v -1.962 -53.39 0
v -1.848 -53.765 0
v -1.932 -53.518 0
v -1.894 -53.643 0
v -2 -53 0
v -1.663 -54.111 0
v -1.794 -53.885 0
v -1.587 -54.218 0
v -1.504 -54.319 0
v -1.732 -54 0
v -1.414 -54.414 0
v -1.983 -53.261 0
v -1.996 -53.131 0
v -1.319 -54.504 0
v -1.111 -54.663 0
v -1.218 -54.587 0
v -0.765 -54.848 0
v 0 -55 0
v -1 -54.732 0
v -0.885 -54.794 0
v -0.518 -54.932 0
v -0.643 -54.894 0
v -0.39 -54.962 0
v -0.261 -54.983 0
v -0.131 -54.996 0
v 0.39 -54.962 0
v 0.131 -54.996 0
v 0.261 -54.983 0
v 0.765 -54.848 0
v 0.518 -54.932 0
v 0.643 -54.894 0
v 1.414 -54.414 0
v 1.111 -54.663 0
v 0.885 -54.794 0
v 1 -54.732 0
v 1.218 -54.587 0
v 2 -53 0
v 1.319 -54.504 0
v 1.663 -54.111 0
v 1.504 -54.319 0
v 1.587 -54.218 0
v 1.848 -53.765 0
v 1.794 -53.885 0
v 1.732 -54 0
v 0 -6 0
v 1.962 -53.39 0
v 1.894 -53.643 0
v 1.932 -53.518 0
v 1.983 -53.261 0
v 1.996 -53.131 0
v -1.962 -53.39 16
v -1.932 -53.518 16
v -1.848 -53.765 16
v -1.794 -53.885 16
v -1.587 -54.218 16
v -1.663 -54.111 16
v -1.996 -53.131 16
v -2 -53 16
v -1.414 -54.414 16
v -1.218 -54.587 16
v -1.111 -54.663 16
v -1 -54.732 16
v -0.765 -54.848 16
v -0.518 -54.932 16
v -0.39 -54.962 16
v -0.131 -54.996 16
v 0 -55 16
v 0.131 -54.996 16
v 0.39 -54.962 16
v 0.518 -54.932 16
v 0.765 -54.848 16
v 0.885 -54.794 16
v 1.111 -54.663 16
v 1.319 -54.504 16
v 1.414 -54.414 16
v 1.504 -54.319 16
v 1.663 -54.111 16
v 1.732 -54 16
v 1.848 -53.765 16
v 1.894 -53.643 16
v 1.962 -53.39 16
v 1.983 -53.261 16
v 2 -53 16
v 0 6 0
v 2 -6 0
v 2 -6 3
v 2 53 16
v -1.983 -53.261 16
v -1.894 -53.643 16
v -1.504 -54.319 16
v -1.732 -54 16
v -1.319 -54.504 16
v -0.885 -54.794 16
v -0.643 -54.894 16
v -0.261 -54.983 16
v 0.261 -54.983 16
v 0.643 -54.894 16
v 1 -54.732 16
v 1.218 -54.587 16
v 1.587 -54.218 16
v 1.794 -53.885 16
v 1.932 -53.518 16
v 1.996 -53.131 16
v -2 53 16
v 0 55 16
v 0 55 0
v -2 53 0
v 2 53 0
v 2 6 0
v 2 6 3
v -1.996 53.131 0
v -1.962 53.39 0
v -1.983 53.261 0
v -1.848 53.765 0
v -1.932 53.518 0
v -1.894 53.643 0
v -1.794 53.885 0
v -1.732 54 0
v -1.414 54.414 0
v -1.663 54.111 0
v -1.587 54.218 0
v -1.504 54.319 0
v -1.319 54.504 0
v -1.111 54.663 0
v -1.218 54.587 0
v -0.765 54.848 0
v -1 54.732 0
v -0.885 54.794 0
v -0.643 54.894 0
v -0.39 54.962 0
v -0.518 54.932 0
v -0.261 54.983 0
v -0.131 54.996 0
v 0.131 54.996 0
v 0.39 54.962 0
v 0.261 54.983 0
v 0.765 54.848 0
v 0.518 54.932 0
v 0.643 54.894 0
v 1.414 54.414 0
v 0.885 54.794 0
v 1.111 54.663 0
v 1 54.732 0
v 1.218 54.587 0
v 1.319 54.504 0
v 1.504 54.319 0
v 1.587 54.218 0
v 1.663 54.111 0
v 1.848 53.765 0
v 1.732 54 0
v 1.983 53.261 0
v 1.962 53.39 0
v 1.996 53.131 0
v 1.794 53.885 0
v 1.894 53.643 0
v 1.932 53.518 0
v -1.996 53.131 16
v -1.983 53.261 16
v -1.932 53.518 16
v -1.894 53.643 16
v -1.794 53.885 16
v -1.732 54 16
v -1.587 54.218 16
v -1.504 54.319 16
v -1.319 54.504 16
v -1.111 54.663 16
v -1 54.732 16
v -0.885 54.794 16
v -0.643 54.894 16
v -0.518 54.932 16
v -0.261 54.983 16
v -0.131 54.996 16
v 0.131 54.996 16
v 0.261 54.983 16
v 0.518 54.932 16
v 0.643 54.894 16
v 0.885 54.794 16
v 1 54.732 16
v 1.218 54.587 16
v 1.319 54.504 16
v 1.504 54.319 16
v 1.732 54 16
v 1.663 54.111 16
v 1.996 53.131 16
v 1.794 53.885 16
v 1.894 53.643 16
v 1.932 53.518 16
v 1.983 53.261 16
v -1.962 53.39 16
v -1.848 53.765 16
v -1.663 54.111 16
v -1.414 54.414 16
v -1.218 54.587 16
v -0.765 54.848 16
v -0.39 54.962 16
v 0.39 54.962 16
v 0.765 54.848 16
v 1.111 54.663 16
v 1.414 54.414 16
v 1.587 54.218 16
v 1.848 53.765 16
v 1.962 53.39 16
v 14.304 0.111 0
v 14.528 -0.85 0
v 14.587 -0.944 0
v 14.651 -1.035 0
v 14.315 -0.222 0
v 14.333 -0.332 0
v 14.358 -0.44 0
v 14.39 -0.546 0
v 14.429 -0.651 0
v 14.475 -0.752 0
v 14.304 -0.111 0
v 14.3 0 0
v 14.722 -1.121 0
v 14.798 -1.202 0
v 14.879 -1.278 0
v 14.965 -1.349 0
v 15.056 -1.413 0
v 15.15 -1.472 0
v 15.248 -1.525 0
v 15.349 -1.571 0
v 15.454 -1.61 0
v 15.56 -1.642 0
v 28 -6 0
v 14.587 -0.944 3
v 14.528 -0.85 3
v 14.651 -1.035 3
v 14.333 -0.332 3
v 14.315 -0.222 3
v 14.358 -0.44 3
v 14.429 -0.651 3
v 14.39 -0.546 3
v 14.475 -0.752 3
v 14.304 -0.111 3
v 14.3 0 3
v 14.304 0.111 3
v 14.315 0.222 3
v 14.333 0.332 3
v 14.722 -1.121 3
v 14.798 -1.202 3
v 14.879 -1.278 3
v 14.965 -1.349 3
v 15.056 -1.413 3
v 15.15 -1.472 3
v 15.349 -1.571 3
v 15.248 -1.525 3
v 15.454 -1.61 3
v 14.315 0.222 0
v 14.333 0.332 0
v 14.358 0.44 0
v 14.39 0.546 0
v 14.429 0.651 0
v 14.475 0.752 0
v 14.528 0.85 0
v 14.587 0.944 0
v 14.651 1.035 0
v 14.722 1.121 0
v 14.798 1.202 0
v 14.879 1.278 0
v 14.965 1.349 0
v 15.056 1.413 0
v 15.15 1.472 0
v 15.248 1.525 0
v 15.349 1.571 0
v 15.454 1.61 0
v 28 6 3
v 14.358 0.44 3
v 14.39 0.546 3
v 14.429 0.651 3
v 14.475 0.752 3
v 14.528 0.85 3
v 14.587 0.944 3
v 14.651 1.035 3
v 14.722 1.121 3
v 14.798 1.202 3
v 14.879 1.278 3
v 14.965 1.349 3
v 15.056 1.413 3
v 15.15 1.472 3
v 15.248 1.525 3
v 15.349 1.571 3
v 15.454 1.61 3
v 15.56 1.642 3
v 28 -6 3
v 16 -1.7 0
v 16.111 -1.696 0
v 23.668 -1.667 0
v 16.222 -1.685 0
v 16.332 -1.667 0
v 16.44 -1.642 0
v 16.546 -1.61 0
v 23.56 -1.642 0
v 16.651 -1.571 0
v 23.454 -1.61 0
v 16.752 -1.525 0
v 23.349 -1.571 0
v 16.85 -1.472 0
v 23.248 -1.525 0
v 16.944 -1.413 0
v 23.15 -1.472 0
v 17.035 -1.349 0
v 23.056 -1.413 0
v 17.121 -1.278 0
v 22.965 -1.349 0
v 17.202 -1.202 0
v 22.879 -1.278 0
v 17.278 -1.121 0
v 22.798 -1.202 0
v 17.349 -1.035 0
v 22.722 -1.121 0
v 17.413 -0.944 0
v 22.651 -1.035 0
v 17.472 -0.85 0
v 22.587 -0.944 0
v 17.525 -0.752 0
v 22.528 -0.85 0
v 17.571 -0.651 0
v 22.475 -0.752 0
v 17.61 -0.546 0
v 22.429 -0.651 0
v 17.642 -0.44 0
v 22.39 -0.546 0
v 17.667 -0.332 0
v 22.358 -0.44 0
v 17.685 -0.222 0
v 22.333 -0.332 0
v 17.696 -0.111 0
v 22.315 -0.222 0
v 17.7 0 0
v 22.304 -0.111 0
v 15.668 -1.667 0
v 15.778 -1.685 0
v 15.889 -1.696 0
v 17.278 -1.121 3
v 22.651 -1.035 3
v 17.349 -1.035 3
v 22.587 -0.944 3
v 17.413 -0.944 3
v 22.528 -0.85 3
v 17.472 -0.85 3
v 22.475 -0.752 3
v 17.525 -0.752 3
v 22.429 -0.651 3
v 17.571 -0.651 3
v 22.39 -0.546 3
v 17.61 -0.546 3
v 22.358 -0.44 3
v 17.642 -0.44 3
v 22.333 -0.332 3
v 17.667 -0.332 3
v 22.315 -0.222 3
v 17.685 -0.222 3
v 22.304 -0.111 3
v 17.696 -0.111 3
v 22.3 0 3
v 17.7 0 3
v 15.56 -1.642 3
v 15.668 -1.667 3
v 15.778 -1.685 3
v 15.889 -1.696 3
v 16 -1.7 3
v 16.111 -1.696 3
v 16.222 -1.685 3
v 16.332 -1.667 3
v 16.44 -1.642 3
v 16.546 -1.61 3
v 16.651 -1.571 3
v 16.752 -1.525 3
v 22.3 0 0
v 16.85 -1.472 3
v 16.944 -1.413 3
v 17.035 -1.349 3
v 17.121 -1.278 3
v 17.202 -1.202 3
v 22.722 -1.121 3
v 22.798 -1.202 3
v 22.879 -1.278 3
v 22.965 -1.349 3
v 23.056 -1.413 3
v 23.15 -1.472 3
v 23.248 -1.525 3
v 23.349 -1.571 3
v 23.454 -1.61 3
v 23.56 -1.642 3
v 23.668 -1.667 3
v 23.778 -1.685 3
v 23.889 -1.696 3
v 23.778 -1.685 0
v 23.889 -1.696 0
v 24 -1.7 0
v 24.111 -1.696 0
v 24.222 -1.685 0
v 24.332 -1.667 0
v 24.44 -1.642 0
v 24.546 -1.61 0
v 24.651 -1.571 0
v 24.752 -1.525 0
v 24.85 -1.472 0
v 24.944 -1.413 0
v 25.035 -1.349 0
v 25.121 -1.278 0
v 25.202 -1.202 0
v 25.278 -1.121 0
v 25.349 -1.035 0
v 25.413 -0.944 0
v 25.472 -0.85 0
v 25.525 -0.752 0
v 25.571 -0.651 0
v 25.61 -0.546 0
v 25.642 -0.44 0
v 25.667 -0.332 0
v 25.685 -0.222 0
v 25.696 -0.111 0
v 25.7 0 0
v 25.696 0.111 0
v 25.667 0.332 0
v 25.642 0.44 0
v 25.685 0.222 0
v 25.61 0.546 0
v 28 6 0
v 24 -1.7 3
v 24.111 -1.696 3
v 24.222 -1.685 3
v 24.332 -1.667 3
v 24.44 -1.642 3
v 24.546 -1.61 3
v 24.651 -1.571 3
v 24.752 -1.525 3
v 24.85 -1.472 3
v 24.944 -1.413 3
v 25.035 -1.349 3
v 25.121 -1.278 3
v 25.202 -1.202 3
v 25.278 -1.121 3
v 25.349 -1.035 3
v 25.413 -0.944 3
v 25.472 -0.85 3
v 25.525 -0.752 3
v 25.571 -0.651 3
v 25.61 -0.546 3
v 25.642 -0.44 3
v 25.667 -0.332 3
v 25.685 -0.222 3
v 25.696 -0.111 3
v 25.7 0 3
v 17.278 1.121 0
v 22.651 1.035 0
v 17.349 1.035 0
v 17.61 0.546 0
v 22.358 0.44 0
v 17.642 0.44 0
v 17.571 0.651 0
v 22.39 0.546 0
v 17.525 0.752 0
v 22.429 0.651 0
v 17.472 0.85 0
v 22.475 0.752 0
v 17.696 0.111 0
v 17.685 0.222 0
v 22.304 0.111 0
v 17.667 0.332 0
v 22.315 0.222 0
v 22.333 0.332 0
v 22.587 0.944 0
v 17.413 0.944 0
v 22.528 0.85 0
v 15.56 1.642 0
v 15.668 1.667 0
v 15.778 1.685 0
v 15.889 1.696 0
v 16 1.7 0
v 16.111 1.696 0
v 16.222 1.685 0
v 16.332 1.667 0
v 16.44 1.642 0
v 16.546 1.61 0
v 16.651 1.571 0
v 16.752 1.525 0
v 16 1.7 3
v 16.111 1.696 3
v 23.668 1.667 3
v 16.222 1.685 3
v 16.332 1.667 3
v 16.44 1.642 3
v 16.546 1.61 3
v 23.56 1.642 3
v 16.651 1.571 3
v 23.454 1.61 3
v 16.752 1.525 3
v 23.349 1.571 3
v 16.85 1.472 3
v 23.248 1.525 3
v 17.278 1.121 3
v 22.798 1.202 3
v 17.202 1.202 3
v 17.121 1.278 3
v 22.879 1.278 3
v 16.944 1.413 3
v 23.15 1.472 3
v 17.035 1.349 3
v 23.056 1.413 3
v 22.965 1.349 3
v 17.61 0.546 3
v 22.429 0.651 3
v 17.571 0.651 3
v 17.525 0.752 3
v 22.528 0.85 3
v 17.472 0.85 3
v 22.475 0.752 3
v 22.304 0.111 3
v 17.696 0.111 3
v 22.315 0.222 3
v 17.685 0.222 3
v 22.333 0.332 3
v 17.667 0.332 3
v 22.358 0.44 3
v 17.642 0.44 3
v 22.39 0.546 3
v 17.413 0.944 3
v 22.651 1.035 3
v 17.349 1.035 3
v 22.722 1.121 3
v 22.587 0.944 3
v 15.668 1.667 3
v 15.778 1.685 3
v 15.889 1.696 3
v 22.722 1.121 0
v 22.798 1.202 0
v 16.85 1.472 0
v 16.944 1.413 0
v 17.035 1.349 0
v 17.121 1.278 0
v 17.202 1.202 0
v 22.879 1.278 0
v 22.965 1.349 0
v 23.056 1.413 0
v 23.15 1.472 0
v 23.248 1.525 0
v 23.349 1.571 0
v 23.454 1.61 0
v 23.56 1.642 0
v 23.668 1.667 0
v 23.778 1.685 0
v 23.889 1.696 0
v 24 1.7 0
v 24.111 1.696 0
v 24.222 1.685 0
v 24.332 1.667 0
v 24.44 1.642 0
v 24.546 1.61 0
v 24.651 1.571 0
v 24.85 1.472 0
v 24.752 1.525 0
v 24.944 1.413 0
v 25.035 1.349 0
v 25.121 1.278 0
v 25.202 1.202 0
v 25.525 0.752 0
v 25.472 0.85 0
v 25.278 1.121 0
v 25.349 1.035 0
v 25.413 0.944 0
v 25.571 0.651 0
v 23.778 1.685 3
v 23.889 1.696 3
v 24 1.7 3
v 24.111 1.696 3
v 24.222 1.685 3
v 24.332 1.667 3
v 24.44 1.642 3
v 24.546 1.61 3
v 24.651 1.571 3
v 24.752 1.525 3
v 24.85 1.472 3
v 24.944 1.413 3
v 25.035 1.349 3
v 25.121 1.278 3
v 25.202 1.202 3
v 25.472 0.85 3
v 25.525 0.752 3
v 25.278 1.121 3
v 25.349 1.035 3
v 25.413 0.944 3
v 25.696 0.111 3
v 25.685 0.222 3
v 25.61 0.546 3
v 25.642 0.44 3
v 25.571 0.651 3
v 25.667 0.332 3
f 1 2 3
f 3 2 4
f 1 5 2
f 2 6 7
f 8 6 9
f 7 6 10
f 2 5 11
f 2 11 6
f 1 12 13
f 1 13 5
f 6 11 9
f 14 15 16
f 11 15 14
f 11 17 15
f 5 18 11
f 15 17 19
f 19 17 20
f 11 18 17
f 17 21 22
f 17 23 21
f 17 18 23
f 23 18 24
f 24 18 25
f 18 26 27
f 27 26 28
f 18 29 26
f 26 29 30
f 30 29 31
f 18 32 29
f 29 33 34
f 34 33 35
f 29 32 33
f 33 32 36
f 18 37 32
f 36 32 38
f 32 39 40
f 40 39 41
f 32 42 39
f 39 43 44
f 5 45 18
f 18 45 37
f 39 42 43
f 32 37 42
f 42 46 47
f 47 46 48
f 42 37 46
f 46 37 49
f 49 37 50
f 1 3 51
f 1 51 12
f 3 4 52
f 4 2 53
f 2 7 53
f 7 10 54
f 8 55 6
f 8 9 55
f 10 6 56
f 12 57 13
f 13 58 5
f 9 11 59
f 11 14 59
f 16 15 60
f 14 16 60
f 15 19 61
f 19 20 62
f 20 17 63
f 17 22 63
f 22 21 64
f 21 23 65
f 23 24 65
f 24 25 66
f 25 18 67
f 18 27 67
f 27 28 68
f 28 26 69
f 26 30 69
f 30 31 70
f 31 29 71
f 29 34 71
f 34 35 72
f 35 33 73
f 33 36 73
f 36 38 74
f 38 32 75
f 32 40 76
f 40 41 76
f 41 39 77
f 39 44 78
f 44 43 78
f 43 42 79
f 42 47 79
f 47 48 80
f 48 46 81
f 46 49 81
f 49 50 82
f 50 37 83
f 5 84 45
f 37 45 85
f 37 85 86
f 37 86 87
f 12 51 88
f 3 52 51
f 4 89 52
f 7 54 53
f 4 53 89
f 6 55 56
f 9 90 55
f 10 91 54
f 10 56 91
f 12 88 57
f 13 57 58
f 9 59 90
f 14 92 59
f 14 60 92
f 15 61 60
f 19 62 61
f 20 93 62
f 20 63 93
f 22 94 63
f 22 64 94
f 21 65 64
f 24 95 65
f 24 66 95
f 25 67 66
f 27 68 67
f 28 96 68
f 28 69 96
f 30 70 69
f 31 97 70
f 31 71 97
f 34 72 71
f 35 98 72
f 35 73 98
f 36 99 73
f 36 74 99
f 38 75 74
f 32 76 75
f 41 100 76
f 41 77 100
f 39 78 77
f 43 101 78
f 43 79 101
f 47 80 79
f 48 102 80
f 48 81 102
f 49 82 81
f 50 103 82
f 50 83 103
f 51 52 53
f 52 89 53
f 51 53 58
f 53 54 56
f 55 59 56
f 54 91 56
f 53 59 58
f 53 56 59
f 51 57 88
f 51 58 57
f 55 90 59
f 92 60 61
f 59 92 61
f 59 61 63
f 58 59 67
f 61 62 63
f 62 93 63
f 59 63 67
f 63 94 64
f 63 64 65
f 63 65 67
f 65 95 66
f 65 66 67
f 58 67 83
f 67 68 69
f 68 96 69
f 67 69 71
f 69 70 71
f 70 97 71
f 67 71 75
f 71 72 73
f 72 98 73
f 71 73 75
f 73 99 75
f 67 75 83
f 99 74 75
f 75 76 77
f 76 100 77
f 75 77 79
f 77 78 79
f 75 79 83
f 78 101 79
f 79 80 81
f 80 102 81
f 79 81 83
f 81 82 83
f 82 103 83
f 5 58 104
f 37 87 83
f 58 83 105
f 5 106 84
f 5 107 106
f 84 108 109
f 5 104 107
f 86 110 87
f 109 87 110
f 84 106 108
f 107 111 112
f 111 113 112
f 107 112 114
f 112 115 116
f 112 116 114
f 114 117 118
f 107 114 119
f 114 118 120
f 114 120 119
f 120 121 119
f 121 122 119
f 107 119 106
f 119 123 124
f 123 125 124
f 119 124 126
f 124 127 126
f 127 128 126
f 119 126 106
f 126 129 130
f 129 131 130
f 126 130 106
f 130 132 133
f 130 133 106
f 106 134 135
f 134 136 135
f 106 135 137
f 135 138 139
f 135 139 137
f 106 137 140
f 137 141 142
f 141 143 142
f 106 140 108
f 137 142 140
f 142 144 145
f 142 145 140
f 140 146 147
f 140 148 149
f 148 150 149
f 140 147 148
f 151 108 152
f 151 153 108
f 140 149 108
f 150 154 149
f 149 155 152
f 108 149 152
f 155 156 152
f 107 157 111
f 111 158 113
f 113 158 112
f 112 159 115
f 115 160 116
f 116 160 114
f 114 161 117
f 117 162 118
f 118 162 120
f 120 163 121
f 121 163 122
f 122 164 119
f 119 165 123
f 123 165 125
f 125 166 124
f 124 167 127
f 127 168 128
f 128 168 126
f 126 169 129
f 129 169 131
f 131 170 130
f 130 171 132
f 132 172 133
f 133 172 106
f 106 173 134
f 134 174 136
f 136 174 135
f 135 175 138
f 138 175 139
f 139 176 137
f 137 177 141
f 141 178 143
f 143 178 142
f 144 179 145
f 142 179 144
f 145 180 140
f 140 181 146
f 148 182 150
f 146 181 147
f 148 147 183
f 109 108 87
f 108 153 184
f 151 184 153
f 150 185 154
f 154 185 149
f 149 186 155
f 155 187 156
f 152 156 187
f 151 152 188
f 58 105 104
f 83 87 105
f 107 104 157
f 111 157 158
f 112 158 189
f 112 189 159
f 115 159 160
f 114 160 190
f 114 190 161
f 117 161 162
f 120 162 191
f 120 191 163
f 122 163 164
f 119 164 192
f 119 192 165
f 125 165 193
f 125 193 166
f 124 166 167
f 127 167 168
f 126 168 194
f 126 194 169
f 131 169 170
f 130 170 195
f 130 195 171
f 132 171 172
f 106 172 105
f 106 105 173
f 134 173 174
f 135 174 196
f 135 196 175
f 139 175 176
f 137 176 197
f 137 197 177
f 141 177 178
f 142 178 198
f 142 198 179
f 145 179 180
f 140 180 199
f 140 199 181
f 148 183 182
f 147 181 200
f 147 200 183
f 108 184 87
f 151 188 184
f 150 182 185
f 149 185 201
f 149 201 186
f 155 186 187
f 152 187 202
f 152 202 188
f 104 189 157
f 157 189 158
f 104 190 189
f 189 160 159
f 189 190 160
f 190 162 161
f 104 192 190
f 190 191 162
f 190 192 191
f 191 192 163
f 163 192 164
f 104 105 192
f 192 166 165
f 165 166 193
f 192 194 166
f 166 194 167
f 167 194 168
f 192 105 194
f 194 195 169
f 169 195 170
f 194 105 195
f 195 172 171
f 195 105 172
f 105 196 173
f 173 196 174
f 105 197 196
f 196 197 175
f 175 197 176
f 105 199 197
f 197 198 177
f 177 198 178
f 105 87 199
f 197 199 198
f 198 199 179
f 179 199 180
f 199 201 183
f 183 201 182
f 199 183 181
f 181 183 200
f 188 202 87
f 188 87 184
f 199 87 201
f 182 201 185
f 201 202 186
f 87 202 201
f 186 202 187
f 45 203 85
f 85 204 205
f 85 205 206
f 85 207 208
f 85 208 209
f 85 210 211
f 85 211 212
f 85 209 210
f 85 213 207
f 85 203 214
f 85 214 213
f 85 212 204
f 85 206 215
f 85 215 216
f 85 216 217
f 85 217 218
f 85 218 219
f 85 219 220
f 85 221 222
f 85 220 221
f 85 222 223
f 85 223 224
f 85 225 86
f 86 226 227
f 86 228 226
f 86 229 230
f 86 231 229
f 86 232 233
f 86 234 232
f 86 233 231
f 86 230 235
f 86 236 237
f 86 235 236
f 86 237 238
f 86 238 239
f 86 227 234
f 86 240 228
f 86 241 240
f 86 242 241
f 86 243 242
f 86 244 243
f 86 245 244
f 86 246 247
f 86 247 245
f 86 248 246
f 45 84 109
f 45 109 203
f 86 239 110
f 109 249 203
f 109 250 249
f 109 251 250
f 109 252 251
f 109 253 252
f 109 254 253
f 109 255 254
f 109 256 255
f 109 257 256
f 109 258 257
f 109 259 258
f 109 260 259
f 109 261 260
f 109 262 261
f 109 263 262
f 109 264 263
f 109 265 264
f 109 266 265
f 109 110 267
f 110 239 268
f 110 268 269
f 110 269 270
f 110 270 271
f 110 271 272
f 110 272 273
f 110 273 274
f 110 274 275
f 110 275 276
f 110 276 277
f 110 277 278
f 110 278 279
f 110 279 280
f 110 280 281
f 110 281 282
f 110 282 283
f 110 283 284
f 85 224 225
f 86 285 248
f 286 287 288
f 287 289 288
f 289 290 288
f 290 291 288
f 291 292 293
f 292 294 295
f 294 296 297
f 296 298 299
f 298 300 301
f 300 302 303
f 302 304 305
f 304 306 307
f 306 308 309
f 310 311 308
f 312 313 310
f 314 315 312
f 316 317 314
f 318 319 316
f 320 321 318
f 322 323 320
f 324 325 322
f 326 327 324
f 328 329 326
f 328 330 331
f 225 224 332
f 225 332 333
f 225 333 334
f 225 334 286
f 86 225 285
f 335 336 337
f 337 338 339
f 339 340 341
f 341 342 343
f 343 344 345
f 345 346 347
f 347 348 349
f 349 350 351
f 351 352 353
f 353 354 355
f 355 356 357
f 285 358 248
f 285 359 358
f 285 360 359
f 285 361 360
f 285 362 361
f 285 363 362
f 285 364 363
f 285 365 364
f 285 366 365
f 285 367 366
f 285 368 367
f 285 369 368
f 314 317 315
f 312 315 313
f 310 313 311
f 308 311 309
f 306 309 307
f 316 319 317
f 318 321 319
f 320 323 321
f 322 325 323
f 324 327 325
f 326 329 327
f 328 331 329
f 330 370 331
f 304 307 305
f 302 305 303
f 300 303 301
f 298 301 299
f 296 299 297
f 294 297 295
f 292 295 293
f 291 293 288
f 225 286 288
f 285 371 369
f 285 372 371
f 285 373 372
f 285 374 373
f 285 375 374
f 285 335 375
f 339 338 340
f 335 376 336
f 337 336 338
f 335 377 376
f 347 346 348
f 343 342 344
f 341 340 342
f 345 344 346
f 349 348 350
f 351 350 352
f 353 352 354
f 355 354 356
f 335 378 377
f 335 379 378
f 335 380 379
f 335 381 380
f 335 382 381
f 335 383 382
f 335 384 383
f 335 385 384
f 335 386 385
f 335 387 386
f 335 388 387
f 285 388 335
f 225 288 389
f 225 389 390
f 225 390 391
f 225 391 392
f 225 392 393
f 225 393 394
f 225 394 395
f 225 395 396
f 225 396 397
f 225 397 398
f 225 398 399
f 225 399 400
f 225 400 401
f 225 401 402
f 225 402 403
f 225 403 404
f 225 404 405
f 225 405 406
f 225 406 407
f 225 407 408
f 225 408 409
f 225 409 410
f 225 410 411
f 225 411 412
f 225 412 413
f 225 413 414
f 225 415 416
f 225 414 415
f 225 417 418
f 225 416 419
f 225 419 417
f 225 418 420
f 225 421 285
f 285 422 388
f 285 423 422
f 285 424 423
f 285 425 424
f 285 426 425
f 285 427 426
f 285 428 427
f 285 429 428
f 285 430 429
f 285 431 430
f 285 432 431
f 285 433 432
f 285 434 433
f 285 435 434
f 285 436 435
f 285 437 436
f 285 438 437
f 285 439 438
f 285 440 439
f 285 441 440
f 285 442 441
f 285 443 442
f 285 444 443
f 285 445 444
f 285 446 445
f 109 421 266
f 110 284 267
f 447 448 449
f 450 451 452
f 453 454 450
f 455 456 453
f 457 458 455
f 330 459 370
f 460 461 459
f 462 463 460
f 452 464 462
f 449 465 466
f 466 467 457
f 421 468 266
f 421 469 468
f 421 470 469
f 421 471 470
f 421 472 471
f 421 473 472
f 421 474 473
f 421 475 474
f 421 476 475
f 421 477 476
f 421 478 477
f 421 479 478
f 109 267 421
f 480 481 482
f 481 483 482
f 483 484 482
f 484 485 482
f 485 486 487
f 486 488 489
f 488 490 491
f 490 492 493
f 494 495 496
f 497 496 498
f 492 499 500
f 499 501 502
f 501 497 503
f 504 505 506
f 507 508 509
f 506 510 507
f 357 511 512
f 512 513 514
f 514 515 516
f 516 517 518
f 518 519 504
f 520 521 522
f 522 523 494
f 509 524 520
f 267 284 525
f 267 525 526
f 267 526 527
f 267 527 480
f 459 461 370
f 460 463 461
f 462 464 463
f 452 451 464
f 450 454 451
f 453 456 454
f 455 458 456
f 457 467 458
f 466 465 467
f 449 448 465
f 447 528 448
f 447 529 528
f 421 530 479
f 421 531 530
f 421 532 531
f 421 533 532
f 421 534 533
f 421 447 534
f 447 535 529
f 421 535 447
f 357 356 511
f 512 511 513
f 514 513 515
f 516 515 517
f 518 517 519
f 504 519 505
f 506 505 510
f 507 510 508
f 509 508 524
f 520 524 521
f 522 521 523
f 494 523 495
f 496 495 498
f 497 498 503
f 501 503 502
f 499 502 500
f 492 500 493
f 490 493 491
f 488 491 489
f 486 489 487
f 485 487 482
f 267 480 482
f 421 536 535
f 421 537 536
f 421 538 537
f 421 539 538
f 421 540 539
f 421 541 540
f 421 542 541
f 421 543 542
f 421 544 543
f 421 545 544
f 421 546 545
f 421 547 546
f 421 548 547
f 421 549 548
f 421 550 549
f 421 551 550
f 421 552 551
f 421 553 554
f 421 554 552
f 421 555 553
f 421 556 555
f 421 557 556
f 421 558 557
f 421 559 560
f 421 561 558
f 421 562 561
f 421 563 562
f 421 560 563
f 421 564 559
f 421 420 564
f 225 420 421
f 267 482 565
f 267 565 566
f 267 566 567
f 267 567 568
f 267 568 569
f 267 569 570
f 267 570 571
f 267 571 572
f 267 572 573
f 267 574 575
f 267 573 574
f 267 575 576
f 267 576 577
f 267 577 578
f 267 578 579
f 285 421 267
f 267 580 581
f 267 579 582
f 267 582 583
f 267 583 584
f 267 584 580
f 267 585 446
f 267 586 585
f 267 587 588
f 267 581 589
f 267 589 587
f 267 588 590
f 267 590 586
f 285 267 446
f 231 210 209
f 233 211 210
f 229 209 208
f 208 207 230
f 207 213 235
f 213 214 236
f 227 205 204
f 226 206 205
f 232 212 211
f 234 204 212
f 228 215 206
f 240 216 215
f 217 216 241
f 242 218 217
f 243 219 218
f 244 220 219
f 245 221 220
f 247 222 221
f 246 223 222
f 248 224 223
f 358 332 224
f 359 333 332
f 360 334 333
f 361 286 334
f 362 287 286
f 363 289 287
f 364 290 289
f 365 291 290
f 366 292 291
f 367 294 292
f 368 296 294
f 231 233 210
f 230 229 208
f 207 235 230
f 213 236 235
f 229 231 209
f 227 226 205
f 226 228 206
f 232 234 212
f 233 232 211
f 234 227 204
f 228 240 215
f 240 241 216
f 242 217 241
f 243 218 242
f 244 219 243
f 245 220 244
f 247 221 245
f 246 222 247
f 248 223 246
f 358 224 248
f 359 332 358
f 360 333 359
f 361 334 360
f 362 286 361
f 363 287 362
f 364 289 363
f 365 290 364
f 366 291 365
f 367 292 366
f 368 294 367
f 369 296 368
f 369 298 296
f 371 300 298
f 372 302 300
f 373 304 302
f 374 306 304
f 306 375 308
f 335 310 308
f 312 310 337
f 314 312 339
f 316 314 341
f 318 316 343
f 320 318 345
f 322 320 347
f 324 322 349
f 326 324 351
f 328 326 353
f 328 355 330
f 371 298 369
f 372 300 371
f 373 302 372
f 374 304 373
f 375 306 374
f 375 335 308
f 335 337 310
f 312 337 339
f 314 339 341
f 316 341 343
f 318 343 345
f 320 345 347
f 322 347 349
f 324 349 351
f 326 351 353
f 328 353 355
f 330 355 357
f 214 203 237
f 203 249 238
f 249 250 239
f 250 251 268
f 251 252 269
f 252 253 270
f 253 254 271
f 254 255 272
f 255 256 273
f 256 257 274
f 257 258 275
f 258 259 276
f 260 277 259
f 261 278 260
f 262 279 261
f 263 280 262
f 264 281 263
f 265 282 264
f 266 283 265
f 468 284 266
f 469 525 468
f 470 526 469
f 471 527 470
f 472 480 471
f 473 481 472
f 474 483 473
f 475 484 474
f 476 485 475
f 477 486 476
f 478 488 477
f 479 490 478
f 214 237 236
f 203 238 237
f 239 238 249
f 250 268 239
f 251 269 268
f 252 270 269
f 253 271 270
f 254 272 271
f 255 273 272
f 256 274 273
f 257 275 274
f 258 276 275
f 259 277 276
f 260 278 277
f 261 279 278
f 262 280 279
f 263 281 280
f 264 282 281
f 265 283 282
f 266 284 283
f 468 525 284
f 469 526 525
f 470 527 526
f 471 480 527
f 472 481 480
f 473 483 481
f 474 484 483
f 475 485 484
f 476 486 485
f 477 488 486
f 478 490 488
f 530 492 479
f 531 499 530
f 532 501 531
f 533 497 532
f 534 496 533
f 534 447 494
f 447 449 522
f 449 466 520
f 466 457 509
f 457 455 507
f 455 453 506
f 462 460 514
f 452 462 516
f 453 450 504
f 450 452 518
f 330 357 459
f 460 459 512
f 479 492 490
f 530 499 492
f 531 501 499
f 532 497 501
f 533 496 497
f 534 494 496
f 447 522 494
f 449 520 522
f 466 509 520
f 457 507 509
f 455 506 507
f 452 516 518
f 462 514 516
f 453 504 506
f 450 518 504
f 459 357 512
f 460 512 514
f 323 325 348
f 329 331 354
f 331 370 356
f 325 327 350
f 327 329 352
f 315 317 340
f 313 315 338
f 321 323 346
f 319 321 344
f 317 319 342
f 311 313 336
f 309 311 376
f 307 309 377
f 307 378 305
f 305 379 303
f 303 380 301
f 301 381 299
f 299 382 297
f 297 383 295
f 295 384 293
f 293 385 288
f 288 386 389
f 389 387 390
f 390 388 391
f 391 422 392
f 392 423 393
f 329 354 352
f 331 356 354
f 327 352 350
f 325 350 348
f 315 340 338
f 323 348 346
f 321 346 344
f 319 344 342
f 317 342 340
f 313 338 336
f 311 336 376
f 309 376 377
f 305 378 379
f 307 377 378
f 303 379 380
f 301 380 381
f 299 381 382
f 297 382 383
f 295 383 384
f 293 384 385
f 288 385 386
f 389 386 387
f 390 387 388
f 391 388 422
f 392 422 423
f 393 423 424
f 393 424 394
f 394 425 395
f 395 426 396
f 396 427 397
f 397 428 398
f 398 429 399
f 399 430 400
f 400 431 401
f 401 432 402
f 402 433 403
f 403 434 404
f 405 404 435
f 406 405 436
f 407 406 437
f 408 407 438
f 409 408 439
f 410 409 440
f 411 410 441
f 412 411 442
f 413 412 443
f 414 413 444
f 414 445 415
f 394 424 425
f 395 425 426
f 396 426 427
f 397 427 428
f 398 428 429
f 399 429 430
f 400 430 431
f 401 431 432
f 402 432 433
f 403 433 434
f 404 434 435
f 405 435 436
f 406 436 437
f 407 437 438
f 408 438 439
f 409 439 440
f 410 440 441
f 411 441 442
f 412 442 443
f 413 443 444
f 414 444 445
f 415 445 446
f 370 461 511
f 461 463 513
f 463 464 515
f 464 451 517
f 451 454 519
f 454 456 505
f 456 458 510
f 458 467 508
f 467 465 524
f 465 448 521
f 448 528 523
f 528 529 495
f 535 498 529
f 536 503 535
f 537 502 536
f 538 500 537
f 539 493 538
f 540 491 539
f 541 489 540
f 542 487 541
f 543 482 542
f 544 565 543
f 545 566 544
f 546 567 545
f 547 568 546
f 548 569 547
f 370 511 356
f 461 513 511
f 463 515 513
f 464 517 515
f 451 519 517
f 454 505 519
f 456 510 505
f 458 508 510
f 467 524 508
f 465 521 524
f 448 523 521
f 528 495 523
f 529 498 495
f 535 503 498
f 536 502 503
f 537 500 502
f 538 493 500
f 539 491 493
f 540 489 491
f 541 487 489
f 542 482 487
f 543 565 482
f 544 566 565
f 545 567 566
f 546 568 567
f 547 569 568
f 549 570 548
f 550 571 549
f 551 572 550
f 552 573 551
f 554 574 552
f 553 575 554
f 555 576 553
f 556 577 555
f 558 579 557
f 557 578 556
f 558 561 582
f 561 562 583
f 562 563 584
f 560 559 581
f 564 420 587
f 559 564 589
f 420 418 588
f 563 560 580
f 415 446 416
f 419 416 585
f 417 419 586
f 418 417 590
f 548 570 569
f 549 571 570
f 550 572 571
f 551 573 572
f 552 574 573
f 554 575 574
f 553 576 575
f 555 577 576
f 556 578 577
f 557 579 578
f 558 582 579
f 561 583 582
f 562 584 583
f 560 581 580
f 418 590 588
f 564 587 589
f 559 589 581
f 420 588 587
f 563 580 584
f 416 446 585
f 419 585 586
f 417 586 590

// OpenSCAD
// Units: mm. Generic prototype; read ../audit/CAD_AUDIT.md.
$fn=96;
use <../cute_rover_complete.scad>;
front_bumper();
